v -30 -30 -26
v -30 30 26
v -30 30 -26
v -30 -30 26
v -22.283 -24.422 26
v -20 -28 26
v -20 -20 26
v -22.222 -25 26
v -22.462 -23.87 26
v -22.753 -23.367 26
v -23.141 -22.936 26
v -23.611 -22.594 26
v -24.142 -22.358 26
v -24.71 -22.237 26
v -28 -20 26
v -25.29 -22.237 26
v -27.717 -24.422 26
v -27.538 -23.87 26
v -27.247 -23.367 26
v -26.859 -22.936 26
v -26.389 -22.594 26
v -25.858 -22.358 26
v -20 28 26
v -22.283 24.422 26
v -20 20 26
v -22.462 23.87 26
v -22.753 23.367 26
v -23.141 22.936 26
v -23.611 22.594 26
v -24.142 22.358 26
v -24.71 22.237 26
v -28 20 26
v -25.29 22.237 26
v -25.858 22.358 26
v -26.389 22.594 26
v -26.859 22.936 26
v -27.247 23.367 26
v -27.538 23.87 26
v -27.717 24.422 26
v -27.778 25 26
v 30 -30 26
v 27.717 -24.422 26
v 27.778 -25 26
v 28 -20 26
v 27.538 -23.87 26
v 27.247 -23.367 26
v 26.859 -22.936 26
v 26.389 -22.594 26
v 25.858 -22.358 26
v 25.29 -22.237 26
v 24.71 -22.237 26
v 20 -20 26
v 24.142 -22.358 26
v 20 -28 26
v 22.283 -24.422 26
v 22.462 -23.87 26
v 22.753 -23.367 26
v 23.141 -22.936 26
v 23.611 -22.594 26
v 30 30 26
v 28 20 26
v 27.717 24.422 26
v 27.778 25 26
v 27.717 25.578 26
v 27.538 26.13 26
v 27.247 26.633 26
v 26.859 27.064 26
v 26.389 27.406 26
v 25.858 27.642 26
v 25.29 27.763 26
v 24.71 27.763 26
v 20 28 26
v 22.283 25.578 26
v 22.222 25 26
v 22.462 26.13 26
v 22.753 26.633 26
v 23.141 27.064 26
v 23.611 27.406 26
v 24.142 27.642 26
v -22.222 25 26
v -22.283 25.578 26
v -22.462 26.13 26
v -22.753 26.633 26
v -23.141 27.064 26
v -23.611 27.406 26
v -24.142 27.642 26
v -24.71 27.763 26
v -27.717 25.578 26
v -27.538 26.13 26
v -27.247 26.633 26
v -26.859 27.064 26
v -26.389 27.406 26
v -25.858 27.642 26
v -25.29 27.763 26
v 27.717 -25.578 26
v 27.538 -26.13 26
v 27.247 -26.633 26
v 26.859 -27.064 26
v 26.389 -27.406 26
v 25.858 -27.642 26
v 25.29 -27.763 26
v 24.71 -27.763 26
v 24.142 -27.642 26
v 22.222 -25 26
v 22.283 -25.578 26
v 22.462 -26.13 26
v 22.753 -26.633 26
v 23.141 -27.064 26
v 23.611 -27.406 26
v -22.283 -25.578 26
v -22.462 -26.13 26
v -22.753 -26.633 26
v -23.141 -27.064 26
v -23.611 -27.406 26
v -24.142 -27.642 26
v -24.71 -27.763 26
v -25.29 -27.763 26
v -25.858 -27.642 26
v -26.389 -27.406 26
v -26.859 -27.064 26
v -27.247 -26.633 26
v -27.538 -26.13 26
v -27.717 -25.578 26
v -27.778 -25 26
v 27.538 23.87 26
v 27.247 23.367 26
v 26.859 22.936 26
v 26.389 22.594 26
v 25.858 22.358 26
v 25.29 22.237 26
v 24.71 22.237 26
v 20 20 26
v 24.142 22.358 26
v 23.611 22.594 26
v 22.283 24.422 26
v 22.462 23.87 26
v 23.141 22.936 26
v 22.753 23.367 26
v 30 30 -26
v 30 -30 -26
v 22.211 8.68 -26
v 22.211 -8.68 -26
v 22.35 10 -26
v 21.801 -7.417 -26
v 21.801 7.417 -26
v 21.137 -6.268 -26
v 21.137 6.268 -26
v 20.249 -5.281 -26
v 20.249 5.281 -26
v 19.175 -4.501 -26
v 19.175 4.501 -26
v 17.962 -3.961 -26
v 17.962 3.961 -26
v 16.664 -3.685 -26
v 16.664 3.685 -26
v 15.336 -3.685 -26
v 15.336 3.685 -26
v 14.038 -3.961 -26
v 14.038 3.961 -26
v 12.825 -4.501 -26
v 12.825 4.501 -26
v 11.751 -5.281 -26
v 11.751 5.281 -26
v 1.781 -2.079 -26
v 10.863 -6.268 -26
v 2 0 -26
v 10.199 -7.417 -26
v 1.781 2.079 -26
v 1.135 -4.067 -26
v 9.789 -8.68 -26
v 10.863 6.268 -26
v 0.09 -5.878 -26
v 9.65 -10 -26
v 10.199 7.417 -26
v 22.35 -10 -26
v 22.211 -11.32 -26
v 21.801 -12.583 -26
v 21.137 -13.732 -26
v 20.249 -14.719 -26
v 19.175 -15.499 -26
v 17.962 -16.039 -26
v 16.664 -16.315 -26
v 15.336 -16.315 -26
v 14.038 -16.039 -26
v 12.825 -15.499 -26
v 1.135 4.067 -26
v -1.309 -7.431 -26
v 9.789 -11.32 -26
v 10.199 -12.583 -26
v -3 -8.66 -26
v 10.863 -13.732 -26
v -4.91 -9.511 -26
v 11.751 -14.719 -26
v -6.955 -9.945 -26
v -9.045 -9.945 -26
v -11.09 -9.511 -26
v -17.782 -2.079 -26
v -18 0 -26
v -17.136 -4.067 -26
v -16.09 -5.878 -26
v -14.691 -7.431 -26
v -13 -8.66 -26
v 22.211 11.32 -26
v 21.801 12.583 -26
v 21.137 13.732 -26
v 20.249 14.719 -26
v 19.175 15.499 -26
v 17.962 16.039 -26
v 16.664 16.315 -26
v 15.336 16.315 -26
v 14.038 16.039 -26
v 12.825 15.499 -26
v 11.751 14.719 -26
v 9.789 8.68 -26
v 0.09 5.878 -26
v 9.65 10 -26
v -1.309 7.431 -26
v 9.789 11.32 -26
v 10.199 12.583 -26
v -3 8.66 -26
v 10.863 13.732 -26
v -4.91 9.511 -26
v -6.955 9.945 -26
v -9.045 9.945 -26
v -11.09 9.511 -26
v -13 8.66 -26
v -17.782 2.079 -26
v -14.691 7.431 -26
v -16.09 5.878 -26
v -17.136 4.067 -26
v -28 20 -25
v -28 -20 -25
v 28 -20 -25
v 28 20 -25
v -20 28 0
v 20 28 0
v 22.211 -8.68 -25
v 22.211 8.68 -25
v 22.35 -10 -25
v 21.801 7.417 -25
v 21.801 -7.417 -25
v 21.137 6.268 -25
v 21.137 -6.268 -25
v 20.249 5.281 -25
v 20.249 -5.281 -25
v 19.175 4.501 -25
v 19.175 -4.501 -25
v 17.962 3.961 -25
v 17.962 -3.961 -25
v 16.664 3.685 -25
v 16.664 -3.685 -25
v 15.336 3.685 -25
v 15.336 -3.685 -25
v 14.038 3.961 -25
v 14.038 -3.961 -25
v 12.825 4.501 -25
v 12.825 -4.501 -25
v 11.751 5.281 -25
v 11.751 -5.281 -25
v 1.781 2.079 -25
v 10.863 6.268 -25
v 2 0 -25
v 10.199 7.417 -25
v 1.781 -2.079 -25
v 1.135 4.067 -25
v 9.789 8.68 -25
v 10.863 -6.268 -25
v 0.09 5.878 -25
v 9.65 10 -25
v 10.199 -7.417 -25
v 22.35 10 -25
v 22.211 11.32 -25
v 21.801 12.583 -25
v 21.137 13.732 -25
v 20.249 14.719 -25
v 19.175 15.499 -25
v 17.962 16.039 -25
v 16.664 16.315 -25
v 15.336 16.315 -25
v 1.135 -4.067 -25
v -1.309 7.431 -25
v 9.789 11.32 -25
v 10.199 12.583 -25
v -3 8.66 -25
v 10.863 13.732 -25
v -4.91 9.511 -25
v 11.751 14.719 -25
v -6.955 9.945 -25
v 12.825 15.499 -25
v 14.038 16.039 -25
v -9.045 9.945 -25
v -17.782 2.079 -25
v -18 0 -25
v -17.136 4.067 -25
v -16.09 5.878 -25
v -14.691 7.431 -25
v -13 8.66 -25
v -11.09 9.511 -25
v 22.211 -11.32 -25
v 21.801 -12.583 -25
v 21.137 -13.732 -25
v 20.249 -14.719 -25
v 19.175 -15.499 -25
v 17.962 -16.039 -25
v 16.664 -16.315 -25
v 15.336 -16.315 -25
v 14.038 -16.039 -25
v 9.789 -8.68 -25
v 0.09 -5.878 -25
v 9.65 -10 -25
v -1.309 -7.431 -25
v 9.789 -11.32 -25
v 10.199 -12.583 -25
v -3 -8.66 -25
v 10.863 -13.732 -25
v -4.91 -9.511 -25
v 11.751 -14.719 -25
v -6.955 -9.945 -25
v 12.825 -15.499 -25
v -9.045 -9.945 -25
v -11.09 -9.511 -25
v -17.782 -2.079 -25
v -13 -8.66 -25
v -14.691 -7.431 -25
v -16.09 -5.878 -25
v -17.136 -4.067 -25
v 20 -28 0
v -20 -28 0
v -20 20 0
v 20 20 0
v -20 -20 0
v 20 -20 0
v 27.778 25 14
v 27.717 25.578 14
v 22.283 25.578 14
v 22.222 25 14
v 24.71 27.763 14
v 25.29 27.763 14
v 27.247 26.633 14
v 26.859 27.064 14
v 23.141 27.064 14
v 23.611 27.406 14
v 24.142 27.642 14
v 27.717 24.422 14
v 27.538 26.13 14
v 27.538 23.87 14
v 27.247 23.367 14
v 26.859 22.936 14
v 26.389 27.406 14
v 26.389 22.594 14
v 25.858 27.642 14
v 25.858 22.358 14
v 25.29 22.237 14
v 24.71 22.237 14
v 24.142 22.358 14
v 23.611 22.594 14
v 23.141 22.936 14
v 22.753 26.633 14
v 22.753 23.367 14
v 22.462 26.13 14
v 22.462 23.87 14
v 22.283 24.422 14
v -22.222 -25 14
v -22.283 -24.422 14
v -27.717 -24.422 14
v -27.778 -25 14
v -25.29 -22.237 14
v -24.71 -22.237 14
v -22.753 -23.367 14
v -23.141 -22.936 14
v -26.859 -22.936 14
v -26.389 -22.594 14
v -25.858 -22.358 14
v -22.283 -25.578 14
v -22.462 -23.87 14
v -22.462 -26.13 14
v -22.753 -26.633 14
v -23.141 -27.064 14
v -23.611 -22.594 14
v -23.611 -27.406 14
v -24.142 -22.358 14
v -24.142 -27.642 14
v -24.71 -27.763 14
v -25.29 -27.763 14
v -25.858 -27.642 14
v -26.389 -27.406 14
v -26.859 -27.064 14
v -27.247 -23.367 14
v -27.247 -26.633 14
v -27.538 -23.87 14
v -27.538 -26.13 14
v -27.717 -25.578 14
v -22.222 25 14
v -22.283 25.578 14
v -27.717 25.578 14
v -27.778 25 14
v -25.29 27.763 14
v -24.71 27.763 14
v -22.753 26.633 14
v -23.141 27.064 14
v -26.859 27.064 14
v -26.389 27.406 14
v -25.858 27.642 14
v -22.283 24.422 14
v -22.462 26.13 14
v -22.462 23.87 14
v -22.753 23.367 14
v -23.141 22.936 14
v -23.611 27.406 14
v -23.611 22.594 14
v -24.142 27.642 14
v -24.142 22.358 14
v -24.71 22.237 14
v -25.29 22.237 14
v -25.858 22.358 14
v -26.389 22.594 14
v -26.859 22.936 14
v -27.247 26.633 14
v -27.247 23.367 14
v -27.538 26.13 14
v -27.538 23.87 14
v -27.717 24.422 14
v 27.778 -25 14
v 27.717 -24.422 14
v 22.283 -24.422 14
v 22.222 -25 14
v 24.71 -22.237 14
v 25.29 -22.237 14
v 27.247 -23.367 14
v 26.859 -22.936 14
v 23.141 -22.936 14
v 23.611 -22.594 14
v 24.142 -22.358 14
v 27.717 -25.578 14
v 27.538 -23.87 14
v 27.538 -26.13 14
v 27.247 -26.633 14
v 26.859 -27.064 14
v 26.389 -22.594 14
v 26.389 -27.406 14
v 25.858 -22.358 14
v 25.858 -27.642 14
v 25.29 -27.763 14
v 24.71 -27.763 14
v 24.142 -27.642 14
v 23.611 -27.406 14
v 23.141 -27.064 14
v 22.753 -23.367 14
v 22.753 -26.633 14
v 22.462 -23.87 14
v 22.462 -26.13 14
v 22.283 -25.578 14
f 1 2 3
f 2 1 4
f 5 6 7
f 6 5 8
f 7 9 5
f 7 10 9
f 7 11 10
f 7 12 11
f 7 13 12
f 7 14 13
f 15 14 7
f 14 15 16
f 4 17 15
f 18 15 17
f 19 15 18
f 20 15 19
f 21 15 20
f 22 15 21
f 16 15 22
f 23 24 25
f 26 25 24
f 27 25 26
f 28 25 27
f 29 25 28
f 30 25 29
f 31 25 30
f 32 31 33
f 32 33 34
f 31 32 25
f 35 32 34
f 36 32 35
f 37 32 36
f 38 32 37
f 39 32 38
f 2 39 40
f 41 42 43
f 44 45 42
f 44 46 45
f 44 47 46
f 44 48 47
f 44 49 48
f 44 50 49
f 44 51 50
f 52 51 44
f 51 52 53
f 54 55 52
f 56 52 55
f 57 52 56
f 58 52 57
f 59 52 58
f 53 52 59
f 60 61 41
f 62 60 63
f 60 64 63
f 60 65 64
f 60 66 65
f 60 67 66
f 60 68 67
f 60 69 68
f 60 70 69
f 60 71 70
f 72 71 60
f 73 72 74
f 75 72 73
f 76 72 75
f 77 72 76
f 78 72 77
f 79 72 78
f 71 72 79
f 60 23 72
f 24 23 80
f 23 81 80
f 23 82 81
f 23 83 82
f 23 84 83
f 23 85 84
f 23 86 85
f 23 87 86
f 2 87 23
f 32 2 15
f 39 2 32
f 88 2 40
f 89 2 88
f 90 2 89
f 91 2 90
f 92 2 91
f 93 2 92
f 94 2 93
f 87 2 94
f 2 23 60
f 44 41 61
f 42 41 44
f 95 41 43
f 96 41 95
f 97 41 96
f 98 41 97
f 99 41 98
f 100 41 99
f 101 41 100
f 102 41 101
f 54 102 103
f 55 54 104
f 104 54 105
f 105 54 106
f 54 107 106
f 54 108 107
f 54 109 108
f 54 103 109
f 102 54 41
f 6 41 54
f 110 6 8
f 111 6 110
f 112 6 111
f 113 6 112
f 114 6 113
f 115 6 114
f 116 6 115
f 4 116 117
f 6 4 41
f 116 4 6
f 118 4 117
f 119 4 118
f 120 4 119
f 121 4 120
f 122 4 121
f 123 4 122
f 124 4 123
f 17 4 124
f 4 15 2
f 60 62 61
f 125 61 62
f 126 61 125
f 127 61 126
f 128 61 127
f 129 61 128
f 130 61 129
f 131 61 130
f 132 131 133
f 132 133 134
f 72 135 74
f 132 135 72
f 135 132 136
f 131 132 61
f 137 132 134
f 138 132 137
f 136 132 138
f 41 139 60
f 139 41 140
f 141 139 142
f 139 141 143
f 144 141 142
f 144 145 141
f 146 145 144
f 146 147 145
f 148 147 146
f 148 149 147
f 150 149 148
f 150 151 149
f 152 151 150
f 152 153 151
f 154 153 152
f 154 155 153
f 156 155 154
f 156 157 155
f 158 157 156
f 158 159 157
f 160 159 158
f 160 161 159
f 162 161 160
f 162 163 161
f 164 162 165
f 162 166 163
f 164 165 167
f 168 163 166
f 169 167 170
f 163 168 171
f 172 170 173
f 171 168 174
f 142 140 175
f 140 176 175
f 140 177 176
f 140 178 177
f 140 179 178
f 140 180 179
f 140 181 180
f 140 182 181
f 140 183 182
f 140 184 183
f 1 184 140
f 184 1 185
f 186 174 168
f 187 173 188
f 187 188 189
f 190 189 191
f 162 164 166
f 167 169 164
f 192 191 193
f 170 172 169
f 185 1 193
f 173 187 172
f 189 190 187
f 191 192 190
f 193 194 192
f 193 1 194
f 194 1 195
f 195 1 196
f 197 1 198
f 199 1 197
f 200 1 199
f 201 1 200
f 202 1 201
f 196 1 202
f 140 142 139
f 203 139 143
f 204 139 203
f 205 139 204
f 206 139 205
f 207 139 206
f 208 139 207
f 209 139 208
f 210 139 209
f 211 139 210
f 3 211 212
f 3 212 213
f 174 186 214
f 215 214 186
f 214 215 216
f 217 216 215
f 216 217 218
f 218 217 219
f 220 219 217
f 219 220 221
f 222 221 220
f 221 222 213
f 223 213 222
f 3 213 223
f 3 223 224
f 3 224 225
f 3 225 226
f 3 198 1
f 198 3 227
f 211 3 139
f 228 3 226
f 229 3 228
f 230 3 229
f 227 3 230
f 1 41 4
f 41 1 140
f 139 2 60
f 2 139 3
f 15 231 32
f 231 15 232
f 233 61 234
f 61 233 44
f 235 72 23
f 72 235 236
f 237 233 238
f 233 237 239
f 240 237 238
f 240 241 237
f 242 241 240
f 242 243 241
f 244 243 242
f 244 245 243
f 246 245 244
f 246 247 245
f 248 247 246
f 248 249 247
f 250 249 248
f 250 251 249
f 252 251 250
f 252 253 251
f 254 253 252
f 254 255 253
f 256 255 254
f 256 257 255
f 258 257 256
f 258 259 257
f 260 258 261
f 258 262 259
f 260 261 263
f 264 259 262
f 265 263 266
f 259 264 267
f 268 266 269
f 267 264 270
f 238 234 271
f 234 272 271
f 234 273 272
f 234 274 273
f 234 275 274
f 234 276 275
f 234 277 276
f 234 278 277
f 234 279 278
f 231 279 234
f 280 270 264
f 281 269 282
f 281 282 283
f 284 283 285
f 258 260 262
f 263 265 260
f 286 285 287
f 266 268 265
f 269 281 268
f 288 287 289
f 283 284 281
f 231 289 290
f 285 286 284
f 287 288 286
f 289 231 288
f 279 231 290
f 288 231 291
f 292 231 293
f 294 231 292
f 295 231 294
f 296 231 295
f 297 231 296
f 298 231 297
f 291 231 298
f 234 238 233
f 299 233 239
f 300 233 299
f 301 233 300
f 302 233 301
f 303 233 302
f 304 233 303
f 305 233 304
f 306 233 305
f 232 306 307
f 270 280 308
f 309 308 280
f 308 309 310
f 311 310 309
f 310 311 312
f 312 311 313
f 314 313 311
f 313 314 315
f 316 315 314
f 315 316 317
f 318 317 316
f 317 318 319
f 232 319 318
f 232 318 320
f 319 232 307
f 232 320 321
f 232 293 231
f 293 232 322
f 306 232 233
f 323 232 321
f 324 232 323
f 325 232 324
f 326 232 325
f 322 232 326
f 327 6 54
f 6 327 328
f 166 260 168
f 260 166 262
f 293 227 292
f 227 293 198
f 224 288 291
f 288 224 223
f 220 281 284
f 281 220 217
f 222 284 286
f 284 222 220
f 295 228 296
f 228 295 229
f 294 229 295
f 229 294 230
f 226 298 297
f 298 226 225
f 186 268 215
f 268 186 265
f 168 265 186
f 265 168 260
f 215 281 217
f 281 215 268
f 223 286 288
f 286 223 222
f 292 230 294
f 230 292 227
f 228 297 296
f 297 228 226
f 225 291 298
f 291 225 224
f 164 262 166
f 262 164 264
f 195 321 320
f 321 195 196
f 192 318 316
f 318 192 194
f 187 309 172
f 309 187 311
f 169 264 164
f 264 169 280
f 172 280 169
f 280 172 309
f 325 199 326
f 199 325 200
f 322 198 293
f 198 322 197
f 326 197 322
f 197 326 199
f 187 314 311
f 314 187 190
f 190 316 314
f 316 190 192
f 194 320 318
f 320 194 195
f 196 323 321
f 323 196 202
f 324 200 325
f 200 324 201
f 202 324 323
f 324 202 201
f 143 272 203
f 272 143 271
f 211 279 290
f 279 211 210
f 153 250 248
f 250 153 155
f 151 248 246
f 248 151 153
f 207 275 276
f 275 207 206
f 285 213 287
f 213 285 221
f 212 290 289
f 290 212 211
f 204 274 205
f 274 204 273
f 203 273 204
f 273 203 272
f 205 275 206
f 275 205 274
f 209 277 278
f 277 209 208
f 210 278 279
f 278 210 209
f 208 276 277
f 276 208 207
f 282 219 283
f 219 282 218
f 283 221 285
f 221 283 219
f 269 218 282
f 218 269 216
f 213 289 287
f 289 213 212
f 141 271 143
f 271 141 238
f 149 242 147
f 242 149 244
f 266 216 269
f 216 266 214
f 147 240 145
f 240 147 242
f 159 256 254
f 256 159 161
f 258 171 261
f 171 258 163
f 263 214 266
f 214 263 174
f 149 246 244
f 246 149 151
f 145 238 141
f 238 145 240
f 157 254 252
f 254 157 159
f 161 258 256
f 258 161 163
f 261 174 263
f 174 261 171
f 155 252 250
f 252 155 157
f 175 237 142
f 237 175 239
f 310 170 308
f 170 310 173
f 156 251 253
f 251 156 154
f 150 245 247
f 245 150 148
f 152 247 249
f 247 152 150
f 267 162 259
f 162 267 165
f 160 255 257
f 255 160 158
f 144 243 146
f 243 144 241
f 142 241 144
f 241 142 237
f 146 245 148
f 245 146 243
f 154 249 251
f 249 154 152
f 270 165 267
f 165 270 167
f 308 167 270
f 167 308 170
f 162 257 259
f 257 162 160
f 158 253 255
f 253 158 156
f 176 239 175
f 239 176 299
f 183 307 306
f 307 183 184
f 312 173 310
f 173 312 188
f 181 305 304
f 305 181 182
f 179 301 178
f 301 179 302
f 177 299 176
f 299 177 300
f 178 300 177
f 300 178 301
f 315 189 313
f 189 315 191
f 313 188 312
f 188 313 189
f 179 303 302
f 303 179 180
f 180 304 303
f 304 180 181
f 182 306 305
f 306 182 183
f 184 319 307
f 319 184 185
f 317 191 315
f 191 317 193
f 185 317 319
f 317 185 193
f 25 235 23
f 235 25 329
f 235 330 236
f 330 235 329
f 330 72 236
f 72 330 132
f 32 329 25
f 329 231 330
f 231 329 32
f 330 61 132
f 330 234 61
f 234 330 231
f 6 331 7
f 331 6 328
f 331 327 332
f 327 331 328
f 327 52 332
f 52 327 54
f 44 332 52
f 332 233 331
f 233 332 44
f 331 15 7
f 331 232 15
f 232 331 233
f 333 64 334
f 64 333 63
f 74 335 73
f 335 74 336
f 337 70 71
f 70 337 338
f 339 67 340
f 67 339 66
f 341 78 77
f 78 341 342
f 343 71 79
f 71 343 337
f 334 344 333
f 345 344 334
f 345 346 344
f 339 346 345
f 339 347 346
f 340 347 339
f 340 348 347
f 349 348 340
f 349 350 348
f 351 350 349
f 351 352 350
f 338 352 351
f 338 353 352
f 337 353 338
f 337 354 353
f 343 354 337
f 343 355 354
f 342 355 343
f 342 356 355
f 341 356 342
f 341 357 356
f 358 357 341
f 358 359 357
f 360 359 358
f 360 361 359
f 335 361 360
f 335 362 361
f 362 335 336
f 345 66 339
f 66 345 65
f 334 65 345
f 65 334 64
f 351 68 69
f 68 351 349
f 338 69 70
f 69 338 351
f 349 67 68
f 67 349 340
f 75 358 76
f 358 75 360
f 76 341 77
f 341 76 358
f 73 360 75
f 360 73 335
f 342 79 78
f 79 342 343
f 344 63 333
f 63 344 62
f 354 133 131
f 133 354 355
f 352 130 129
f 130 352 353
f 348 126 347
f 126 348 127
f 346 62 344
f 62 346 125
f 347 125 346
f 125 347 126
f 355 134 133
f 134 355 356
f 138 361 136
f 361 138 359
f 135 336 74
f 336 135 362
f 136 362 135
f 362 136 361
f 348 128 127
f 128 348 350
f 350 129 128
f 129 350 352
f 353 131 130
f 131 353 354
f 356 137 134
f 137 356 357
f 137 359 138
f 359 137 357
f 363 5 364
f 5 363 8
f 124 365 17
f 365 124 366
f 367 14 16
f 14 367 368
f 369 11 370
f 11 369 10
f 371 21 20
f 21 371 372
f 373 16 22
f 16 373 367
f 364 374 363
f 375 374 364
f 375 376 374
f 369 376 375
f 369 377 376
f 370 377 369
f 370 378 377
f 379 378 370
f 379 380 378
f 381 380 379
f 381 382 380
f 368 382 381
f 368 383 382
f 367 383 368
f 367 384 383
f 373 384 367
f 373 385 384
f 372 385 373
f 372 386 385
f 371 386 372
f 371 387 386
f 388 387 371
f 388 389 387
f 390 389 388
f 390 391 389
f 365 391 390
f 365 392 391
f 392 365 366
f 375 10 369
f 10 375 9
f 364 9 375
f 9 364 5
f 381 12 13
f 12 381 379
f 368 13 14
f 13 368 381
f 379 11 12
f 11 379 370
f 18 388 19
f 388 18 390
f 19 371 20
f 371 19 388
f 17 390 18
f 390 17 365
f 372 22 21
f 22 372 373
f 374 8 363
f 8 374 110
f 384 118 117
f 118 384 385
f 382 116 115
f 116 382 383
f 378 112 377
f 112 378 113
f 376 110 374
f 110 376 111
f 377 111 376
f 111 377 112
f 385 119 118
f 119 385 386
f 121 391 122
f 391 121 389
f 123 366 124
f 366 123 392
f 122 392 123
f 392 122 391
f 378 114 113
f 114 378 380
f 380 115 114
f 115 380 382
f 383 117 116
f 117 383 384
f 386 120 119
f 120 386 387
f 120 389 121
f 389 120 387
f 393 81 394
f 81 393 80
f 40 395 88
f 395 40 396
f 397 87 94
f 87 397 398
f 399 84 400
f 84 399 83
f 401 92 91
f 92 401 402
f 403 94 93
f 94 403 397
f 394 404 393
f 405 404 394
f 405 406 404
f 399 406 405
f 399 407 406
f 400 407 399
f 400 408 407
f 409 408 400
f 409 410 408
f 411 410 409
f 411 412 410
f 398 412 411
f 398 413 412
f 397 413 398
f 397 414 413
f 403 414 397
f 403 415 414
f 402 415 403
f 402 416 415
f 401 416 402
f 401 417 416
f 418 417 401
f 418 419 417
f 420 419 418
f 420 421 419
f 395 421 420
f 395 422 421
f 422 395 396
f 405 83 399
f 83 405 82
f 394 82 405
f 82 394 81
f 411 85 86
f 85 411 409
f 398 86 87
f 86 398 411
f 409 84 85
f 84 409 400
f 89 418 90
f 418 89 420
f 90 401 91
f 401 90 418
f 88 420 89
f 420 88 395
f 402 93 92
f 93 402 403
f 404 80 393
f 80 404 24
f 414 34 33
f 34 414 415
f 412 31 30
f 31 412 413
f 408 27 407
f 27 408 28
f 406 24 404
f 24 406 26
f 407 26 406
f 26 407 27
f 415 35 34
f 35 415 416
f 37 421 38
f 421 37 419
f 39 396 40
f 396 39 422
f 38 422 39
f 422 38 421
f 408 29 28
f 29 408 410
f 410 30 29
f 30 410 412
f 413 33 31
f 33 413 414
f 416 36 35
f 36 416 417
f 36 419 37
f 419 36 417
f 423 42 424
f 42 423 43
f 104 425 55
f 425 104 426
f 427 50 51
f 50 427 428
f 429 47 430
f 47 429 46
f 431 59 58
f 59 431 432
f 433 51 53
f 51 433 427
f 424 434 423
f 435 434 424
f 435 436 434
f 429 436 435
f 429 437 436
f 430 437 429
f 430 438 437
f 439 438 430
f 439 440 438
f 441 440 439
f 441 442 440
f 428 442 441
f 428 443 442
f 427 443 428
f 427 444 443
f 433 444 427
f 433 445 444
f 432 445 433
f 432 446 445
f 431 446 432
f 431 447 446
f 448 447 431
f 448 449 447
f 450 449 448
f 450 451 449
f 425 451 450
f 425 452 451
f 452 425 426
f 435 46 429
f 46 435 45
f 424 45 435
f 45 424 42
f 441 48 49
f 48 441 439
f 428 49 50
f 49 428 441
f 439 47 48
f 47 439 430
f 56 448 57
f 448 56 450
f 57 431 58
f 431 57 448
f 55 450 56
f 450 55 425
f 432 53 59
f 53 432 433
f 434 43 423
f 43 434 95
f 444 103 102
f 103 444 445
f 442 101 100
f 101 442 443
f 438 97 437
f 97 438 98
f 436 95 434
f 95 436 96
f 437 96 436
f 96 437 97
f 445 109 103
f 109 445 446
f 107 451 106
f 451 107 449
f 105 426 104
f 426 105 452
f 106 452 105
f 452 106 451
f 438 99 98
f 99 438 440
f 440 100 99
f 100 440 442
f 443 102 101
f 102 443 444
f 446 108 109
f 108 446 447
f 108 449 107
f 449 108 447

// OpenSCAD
/**************************************************
    Variables
***************************************************/
$fn=30;

WALL_THICKNESS = 2;
BOTTOM_THICKNESS = 1;

POST_SIZE = 15;

BOARD_X = 30;
BOARD_Y = 60;
BOARD_Z = 18;

BOX_X = 60;
BOX_Y = 60;
BOX_Z = 52;

BAT_Y = 19;
BAT_X = 37.5;
BAT_Z = 19;

SWITCH_DRILL_DIAMETER = 20;
BUTTON_DRILL_DIAMETER = 12.7;

STANDOFF_SIZE = 10;

DIVIDER_STANDOFF_HEIGHT = 25;

/**************************************************
    Modules
***************************************************/

module box_bottom(l, w, h, wall_thickness=1, bottom_thickness=1){
    difference(){
        cube([l,w,h], center=true);
        translate([0,0,bottom_thickness])
            cube([l-(wall_thickness*2),w-(wall_thickness*2),h], center=true);
    
        //window to see in.
        //translate([0, w/2, h/2-2])cube([l-2, wall_thickness + 3, 34], center=true);
    }
}

module insert_post(h=10){
    difference(){
        cube([STANDOFF_SIZE, STANDOFF_SIZE, h], center=true);
        //translate([0,0, -h/2])cylinder(h=h, d=15);
        translate([0,0, (h/2)-12])cylinder(d=5.556, h=12);
    }

}

module all_posts(BOX_X, BOX_Y, BOX_Z, wall_thickness=2){
    
    translate([BOX_X/2 - STANDOFF_SIZE/2, 
               BOX_Y/2 - STANDOFF_SIZE/2, 0])
        insert_post(BOX_Z);
    
    translate([-BOX_X/2 + STANDOFF_SIZE/2, 
               -BOX_Y/2 + STANDOFF_SIZE/2, 0])
        insert_post(BOX_Z);
    
    translate([-BOX_X/2 + STANDOFF_SIZE/2, 
               BOX_Y/2 - STANDOFF_SIZE/2, 0])
        insert_post(BOX_Z);
    
    translate([BOX_X/2 - STANDOFF_SIZE/2, 
               -BOX_Y/2 + STANDOFF_SIZE/2, 0])
        insert_post(BOX_Z);
}


module lid(l,w,h, wall_thickness=1){
    translate([0,0, h/2 + 3])
        cube([l, w,2],center=true);
}

module top_screw_holes(){
    
    SCREW_HOLE_DIAMETER = 4.8;
    
    translate([BOX_X/2 - STANDOFF_SIZE/2, 
               BOX_Y/2 - STANDOFF_SIZE/2, 0])
        cylinder(d=SCREW_HOLE_DIAMETER, h=BOX_Z+10);
    
    translate([-BOX_X/2 + STANDOFF_SIZE/2, 
               -BOX_Y/2 + STANDOFF_SIZE/2, 0])
        cylinder(d=SCREW_HOLE_DIAMETER, h=BOX_Z+10);
    
    translate([-BOX_X/2 + STANDOFF_SIZE/2, 
               BOX_Y/2 - STANDOFF_SIZE/2, 0])
        cylinder(d=SCREW_HOLE_DIAMETER, h=BOX_Z+10);
    
    translate([BOX_X/2 - STANDOFF_SIZE/2, 
               -BOX_Y/2 + STANDOFF_SIZE/2, 0])
        cylinder(d=SCREW_HOLE_DIAMETER, h=BOX_Z+10);
}


module board(){
    cube([BOARD_X,BOARD_Y,BOARD_Z], center=true);
}

module switch_hole(){
   cylinder(r=SWITCH_DRILL_DIAMETER/2, h=BOX_Z, center=true);
}

module button_hole(){
    cylinder(r=BUTTON_DRILL_DIAMETER/2, h=BOX_Z, center=true);
}

module battery_holder(){
    difference(){
        cube([BAT_X, BAT_Y, BAT_Z], center=true);
        translate([0,0,1.01]){
            cube([BAT_X-2,BAT_Y-2,BAT_Z-2], center=true);
            
        }
        
        translate([(BAT_X/2)-3,-10,(-1*(BAT_Z/2)) + 3]){
            cube([2,BAT_Y/2,2], center=true);
        }
        
        translate([0-(BAT_X/2)+3,-10,(-1*(BAT_Z/2)) + 3]){
            cube([2,BAT_Y/2,2], center=true);
        }
    }   
}

module divider_standoffs(){
    Y_DISTANCE = ((BOX_Y/2)-(STANDOFF_SIZE/2));
    Z_DISTANCE = (-1*(BOX_Z/2) + (DIVIDER_STANDOFF_HEIGHT/2) + BOTTOM_THICKNESS);
    translate([0,Y_DISTANCE,Z_DISTANCE]){
        cube([(BOX_X-(2*STANDOFF_SIZE)),STANDOFF_SIZE,DIVIDER_STANDOFF_HEIGHT], center=true);
    }
    
    
    translate([0,-Y_DISTANCE,Z_DISTANCE]){
        cube([(BOX_X-(2*STANDOFF_SIZE)),STANDOFF_SIZE,DIVIDER_STANDOFF_HEIGHT], center=true);
    }
    
    
}

module divider_plate(){
    PLATE_X = BOX_X - (2 * STANDOFF_SIZE) - 2;
    cube([PLATE_X,BOX_Y-(2*WALL_THICKNESS)-3,2], center=true);
    translate([0,10,(BAT_Z/2)]){
        battery_holder();
    }
}



/**************************************************
    Render
***************************************************/

difference(){
    box_bottom(BOX_X, BOX_Y, BOX_Z, wall_thickness=WALL_THICKNESS, bottom_thickness=BOTTOM_THICKNESS);
    translate([-8,0,-1]){
        switch_hole();
    }
    translate([16,10,-1]){
        button_hole();
    }
    
    translate([16,-10,-1]){
        button_hole();
    }
    
    //window
    //cube([BOX_X+1,60,50], center=true);
    
}

divider_standoffs();
all_posts(BOX_X, BOX_Y, BOX_Z, wall_thickness=WALL_THICKNESS);


// Uncomment for lid.
/*
difference(){
    lid(BOX_X, BOX_Y, BOX_Z, wall_thickness=2);
    top_screw_holes();
}*/

// Uncomment for divider plate.
/*
translate([0,0,(BOX_Z/2)-20]){
    divider_plate();
}
*/
